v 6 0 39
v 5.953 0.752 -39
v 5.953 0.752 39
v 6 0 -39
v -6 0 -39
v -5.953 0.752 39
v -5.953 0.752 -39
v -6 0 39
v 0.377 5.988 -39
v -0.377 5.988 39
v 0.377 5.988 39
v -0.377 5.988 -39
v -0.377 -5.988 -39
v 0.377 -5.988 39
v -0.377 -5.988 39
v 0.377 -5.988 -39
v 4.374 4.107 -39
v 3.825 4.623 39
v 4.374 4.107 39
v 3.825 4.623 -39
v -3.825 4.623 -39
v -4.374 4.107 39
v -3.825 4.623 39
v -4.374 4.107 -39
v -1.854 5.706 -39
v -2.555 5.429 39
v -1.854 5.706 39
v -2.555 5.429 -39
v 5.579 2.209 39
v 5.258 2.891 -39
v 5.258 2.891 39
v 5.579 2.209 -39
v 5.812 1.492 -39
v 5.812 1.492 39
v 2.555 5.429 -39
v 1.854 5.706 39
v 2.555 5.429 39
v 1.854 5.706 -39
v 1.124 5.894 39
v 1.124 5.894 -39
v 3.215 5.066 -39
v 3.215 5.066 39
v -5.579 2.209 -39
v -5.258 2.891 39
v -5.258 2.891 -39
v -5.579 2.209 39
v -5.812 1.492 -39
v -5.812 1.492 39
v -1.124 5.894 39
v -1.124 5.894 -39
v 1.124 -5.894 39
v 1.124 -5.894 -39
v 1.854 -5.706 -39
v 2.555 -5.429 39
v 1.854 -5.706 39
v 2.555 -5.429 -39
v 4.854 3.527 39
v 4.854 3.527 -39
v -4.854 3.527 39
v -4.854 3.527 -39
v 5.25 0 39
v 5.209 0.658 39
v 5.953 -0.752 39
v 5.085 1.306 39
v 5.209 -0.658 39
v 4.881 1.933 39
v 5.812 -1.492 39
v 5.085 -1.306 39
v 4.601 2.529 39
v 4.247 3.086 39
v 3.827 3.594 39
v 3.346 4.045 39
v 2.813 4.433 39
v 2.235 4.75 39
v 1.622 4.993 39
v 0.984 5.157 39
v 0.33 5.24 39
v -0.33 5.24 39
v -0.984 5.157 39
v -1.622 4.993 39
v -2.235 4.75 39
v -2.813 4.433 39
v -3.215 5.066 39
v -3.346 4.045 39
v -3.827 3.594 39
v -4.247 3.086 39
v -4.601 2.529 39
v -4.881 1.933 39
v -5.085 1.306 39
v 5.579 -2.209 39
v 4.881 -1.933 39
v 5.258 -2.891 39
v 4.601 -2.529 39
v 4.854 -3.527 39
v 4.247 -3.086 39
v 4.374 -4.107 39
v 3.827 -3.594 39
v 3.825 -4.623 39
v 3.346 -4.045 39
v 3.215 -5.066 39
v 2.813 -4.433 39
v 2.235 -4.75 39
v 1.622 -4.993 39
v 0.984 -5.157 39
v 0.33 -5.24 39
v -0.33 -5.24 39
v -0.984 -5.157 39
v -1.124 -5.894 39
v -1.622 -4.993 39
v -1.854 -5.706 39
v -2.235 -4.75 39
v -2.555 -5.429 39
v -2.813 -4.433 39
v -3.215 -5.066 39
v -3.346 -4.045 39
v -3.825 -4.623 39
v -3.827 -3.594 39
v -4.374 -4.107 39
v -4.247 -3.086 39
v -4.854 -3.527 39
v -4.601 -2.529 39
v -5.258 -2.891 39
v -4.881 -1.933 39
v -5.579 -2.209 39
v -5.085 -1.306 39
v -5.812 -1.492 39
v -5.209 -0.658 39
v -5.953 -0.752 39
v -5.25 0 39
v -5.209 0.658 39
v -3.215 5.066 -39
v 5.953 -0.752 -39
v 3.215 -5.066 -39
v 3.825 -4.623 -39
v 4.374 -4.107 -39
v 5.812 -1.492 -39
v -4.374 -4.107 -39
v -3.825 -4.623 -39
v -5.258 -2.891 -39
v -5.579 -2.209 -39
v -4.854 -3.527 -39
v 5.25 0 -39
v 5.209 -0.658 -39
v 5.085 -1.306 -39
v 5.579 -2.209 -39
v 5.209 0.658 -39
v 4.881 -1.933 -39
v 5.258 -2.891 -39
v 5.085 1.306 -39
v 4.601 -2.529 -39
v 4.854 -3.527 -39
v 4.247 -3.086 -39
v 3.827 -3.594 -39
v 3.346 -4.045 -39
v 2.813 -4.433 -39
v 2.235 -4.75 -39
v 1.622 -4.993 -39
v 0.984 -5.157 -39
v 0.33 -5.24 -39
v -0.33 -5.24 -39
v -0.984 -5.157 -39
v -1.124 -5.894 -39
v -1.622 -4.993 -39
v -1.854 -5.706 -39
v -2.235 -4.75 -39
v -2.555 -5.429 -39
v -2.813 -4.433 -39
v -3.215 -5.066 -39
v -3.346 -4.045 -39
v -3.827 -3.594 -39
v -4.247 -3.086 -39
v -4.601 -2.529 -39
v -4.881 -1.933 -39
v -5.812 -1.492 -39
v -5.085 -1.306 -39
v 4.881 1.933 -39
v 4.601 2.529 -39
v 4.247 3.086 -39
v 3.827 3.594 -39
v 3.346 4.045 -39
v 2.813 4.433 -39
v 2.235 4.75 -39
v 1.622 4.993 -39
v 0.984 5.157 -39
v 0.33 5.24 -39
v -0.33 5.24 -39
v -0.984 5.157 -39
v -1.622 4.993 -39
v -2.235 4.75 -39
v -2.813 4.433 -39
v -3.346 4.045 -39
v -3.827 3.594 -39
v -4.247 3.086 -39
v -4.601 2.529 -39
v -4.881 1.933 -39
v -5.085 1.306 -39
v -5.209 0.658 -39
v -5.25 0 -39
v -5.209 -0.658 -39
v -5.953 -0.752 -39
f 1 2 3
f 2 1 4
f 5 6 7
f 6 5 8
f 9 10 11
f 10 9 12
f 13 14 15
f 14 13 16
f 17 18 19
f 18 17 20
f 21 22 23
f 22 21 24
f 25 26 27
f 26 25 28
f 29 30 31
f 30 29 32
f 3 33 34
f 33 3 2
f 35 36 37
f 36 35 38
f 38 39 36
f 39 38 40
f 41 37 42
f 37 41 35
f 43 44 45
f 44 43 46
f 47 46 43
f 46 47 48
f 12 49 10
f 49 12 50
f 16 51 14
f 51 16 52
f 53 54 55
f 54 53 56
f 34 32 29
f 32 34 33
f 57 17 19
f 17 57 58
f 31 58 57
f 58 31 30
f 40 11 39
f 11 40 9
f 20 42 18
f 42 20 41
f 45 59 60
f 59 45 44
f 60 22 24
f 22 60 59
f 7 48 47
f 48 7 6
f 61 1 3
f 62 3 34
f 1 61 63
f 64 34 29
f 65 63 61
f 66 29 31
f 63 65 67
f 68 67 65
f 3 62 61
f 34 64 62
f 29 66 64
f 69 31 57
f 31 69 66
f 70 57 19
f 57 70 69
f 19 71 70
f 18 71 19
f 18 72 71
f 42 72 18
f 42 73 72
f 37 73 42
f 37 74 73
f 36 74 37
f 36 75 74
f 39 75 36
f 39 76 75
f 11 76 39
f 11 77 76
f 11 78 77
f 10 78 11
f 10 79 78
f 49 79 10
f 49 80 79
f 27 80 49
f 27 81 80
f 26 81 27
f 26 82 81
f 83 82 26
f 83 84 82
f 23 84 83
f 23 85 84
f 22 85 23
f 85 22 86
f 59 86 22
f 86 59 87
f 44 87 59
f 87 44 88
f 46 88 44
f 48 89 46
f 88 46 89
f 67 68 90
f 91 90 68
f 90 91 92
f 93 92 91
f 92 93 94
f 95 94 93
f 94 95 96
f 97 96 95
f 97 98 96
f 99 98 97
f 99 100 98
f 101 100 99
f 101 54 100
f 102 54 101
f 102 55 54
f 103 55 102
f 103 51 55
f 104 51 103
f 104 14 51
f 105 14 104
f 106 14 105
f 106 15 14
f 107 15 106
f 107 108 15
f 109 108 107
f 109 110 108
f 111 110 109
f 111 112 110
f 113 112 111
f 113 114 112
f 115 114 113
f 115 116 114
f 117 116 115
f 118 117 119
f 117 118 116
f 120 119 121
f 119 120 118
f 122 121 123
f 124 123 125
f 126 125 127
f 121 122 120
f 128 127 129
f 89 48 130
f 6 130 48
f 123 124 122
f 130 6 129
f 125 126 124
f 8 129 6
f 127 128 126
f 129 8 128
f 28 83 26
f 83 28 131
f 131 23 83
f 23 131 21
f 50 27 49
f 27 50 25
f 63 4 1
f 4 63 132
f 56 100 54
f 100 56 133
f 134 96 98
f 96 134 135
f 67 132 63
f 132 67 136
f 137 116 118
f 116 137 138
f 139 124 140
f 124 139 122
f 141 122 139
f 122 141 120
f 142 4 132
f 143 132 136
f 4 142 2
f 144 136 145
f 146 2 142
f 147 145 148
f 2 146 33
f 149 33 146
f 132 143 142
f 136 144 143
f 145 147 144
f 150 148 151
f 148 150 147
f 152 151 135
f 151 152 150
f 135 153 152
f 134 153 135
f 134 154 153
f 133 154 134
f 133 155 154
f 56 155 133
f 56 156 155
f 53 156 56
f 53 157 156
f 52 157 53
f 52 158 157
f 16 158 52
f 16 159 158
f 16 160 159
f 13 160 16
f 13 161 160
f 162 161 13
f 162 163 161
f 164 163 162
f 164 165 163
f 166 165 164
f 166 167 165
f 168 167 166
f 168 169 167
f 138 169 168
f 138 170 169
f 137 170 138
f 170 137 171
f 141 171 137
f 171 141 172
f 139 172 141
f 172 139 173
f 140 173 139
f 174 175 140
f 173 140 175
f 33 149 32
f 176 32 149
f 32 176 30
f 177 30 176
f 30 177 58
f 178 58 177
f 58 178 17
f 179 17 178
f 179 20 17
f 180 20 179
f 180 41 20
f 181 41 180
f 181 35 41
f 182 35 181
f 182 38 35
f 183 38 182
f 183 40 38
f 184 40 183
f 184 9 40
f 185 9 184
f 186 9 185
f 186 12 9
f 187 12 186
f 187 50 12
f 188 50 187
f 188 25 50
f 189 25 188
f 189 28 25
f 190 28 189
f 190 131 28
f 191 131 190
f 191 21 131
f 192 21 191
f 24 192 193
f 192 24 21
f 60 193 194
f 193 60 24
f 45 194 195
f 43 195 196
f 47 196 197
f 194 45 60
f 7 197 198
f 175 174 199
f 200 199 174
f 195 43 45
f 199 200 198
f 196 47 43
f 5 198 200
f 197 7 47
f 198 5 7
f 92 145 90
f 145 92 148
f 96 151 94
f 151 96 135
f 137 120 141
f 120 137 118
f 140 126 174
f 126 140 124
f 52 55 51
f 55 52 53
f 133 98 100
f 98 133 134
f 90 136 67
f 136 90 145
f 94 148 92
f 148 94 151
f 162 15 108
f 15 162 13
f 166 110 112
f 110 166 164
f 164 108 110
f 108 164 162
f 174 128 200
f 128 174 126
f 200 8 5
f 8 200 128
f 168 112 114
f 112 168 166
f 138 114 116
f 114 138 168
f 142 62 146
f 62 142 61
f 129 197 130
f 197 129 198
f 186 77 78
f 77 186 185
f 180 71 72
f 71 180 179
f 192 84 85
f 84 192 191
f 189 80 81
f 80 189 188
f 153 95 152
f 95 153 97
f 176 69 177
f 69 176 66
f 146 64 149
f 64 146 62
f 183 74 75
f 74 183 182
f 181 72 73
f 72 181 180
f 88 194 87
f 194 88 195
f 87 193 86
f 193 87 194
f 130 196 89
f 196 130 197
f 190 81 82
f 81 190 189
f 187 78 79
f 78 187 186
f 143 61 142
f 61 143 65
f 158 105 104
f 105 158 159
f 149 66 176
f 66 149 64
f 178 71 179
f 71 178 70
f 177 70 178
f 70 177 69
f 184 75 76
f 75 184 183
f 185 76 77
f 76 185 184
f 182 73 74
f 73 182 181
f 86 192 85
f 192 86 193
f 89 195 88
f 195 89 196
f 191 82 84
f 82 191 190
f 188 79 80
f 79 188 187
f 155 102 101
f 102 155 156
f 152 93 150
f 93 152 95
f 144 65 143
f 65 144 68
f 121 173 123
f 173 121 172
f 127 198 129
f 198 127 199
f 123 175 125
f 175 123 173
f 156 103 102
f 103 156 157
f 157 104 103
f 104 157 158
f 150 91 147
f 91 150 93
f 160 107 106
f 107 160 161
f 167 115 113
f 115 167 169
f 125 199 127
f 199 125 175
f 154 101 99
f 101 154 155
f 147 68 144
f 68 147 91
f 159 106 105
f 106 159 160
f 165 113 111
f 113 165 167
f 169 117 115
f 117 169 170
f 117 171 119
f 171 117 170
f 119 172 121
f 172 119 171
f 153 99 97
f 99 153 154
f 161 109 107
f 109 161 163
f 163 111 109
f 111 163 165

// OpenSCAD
$fn = 50;


difference() {
	union() {
		translate(v = [0, 0, -39.0000000000]) {
			cylinder(h = 78, r = 6.0000000000);
		}
	}
	union() {
		translate(v = [0, 0, -100.0000000000]) {
			cylinder(h = 200, r = 5.2500000000);
		}
	}
}
